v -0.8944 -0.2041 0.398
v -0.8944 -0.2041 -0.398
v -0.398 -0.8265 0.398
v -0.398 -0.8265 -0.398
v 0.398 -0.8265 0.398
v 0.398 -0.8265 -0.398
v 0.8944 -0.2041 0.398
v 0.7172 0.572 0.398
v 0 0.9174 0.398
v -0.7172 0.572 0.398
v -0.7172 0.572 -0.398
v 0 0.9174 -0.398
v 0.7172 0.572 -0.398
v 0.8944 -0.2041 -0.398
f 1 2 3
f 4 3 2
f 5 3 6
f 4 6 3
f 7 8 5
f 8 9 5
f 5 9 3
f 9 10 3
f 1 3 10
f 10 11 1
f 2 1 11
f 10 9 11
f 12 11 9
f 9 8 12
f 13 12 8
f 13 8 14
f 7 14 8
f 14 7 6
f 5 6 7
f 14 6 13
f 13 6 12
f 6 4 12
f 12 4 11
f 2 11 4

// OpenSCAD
polyhedron( points = [[-0.398032496779626, -0.826522996071587, 0.398032496738327], [-0.894370901894663, -0.204134321916675, 0.398032496738327], [-0.717229775952124, 0.571971660132127, 0.398032496738327], [5.14819141441997e-11, 0.9173713160178, 0.398032496738327], [0.717229775993057, 0.571971660003323, 0.398032496738327], [0.894370901796218, -0.204134322077293, 0.398032496738327], [0.398032496717842, -0.826522996071587, 0.398032496738327], [-0.398032496743885, -0.82652299599737, -0.398032496759141], [-0.894370901834933, -0.204134321872541, -0.398032496649184], [-0.717229775887721, 0.571971660080765, -0.398032496759141], [1.48085229273431e-10, 0.917371315981945, -0.3980324967234], [0.717229775928656, 0.571971659951961, -0.398032496759141], [0.894370901739769, -0.204134322163496, -0.3980324967234], [0.398032496717842, -0.82652299599737, -0.398032496794884]], faces = [[0, 1, 8, 7], [0, 7, 13, 6], [0, 6, 5, 4, 3, 2, 1], [1, 2, 9, 8], [2, 3, 10, 9], [3, 4, 11, 10], [4, 5, 12, 11], [5, 6, 13, 12], [7, 8, 9, 10, 11, 12, 13]]);
